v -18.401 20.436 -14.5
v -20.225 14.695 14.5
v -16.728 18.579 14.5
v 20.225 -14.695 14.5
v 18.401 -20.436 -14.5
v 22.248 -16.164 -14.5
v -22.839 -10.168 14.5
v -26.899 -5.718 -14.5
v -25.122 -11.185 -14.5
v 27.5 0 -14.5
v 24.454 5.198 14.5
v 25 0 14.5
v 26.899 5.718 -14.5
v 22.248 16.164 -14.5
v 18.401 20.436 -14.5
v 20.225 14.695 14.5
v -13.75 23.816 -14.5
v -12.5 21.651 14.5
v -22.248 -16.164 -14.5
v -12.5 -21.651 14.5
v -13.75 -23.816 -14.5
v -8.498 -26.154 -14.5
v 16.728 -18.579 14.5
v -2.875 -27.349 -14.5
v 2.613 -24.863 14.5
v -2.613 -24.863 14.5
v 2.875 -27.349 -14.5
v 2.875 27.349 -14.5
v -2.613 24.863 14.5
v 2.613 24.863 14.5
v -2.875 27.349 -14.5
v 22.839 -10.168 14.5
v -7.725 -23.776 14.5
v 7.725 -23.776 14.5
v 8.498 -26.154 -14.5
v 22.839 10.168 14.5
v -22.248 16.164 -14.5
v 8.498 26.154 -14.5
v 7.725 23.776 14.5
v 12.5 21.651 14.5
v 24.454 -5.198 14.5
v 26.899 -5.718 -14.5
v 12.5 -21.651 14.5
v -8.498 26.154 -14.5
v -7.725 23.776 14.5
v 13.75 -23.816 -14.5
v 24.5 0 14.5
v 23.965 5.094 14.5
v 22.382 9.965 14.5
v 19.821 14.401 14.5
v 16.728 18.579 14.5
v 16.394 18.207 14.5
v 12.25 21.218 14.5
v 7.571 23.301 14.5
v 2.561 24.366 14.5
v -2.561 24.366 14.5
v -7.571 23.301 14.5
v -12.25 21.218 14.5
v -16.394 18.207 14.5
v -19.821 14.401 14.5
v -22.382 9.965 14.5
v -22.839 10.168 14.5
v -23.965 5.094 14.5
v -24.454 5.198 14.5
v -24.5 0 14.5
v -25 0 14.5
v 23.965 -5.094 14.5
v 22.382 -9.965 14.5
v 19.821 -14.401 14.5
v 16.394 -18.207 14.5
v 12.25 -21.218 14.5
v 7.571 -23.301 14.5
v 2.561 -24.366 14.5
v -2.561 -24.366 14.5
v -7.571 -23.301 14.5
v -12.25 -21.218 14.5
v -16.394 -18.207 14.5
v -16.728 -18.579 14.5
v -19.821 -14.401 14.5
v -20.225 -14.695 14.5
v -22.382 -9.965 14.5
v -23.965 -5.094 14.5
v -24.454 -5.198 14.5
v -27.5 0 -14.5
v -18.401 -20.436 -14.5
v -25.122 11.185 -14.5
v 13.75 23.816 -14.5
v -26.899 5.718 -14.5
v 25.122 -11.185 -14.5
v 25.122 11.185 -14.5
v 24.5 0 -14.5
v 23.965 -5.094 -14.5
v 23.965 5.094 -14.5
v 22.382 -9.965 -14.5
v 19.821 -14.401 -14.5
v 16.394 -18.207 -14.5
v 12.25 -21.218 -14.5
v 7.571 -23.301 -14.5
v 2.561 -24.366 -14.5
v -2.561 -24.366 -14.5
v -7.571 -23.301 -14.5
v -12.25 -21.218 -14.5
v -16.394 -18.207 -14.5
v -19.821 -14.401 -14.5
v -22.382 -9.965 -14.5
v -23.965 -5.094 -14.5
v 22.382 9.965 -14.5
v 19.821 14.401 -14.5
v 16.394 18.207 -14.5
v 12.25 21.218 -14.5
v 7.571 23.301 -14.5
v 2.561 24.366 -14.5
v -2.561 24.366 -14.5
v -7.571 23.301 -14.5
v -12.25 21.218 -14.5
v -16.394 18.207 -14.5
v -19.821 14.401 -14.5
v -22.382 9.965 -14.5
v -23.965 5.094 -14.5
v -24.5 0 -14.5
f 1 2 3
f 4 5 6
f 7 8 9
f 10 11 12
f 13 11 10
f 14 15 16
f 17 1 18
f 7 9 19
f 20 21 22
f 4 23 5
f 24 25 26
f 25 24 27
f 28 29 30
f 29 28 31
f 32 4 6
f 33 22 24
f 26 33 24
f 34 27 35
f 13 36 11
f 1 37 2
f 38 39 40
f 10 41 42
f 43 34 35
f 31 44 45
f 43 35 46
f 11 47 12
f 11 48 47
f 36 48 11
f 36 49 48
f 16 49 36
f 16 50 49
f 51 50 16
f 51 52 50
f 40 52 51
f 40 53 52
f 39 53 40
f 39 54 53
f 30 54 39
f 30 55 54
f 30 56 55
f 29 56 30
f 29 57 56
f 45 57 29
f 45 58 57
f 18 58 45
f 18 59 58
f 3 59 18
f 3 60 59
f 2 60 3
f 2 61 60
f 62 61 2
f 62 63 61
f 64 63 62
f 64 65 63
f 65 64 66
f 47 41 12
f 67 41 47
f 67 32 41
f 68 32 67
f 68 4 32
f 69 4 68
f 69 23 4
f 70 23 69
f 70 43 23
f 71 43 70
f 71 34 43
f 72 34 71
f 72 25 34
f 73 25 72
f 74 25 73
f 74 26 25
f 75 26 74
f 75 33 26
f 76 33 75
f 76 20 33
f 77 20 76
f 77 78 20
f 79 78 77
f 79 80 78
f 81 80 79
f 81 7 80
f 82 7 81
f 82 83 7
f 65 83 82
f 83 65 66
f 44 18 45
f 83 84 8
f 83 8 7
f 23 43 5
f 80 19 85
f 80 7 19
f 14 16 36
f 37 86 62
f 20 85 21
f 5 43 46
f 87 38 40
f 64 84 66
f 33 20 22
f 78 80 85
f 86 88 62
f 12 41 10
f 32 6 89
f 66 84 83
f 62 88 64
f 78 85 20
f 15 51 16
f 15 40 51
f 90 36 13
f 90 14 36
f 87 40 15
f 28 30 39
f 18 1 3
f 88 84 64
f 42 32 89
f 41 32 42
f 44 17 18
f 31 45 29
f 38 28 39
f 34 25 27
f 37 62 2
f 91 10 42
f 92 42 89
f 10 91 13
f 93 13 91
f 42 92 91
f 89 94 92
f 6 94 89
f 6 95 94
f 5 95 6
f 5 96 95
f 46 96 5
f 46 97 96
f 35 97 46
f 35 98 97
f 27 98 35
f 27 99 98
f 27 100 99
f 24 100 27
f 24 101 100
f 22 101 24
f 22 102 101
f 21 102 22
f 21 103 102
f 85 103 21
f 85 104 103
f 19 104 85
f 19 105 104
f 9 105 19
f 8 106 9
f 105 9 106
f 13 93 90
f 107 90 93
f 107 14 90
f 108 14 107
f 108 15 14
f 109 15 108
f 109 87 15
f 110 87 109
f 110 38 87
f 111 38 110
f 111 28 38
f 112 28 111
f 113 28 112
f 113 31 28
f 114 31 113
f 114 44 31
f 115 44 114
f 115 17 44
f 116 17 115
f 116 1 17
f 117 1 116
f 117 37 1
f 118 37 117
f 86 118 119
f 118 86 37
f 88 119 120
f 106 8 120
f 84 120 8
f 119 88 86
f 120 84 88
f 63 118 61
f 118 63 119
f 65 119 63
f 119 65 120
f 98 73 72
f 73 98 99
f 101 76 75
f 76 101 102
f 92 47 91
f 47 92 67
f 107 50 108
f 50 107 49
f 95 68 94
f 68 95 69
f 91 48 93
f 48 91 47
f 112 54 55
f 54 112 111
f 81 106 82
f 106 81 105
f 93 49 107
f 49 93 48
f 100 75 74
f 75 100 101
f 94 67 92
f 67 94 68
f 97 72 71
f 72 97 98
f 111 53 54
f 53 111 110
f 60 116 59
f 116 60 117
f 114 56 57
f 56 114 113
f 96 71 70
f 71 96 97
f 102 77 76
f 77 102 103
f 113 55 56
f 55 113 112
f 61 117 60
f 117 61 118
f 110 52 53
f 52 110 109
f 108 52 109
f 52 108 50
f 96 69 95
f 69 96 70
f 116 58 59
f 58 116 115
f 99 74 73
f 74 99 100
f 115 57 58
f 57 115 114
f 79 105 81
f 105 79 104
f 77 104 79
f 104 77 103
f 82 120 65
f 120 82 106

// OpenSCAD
// 48, 53, 29
id = 49;
od_top = 50;
od_bottom = 55;
h = 29;

difference() {
    cylinder(h, d1 = od_bottom, d2 = od_top, center = true);
    cylinder(h, d = id, center = true);
}
